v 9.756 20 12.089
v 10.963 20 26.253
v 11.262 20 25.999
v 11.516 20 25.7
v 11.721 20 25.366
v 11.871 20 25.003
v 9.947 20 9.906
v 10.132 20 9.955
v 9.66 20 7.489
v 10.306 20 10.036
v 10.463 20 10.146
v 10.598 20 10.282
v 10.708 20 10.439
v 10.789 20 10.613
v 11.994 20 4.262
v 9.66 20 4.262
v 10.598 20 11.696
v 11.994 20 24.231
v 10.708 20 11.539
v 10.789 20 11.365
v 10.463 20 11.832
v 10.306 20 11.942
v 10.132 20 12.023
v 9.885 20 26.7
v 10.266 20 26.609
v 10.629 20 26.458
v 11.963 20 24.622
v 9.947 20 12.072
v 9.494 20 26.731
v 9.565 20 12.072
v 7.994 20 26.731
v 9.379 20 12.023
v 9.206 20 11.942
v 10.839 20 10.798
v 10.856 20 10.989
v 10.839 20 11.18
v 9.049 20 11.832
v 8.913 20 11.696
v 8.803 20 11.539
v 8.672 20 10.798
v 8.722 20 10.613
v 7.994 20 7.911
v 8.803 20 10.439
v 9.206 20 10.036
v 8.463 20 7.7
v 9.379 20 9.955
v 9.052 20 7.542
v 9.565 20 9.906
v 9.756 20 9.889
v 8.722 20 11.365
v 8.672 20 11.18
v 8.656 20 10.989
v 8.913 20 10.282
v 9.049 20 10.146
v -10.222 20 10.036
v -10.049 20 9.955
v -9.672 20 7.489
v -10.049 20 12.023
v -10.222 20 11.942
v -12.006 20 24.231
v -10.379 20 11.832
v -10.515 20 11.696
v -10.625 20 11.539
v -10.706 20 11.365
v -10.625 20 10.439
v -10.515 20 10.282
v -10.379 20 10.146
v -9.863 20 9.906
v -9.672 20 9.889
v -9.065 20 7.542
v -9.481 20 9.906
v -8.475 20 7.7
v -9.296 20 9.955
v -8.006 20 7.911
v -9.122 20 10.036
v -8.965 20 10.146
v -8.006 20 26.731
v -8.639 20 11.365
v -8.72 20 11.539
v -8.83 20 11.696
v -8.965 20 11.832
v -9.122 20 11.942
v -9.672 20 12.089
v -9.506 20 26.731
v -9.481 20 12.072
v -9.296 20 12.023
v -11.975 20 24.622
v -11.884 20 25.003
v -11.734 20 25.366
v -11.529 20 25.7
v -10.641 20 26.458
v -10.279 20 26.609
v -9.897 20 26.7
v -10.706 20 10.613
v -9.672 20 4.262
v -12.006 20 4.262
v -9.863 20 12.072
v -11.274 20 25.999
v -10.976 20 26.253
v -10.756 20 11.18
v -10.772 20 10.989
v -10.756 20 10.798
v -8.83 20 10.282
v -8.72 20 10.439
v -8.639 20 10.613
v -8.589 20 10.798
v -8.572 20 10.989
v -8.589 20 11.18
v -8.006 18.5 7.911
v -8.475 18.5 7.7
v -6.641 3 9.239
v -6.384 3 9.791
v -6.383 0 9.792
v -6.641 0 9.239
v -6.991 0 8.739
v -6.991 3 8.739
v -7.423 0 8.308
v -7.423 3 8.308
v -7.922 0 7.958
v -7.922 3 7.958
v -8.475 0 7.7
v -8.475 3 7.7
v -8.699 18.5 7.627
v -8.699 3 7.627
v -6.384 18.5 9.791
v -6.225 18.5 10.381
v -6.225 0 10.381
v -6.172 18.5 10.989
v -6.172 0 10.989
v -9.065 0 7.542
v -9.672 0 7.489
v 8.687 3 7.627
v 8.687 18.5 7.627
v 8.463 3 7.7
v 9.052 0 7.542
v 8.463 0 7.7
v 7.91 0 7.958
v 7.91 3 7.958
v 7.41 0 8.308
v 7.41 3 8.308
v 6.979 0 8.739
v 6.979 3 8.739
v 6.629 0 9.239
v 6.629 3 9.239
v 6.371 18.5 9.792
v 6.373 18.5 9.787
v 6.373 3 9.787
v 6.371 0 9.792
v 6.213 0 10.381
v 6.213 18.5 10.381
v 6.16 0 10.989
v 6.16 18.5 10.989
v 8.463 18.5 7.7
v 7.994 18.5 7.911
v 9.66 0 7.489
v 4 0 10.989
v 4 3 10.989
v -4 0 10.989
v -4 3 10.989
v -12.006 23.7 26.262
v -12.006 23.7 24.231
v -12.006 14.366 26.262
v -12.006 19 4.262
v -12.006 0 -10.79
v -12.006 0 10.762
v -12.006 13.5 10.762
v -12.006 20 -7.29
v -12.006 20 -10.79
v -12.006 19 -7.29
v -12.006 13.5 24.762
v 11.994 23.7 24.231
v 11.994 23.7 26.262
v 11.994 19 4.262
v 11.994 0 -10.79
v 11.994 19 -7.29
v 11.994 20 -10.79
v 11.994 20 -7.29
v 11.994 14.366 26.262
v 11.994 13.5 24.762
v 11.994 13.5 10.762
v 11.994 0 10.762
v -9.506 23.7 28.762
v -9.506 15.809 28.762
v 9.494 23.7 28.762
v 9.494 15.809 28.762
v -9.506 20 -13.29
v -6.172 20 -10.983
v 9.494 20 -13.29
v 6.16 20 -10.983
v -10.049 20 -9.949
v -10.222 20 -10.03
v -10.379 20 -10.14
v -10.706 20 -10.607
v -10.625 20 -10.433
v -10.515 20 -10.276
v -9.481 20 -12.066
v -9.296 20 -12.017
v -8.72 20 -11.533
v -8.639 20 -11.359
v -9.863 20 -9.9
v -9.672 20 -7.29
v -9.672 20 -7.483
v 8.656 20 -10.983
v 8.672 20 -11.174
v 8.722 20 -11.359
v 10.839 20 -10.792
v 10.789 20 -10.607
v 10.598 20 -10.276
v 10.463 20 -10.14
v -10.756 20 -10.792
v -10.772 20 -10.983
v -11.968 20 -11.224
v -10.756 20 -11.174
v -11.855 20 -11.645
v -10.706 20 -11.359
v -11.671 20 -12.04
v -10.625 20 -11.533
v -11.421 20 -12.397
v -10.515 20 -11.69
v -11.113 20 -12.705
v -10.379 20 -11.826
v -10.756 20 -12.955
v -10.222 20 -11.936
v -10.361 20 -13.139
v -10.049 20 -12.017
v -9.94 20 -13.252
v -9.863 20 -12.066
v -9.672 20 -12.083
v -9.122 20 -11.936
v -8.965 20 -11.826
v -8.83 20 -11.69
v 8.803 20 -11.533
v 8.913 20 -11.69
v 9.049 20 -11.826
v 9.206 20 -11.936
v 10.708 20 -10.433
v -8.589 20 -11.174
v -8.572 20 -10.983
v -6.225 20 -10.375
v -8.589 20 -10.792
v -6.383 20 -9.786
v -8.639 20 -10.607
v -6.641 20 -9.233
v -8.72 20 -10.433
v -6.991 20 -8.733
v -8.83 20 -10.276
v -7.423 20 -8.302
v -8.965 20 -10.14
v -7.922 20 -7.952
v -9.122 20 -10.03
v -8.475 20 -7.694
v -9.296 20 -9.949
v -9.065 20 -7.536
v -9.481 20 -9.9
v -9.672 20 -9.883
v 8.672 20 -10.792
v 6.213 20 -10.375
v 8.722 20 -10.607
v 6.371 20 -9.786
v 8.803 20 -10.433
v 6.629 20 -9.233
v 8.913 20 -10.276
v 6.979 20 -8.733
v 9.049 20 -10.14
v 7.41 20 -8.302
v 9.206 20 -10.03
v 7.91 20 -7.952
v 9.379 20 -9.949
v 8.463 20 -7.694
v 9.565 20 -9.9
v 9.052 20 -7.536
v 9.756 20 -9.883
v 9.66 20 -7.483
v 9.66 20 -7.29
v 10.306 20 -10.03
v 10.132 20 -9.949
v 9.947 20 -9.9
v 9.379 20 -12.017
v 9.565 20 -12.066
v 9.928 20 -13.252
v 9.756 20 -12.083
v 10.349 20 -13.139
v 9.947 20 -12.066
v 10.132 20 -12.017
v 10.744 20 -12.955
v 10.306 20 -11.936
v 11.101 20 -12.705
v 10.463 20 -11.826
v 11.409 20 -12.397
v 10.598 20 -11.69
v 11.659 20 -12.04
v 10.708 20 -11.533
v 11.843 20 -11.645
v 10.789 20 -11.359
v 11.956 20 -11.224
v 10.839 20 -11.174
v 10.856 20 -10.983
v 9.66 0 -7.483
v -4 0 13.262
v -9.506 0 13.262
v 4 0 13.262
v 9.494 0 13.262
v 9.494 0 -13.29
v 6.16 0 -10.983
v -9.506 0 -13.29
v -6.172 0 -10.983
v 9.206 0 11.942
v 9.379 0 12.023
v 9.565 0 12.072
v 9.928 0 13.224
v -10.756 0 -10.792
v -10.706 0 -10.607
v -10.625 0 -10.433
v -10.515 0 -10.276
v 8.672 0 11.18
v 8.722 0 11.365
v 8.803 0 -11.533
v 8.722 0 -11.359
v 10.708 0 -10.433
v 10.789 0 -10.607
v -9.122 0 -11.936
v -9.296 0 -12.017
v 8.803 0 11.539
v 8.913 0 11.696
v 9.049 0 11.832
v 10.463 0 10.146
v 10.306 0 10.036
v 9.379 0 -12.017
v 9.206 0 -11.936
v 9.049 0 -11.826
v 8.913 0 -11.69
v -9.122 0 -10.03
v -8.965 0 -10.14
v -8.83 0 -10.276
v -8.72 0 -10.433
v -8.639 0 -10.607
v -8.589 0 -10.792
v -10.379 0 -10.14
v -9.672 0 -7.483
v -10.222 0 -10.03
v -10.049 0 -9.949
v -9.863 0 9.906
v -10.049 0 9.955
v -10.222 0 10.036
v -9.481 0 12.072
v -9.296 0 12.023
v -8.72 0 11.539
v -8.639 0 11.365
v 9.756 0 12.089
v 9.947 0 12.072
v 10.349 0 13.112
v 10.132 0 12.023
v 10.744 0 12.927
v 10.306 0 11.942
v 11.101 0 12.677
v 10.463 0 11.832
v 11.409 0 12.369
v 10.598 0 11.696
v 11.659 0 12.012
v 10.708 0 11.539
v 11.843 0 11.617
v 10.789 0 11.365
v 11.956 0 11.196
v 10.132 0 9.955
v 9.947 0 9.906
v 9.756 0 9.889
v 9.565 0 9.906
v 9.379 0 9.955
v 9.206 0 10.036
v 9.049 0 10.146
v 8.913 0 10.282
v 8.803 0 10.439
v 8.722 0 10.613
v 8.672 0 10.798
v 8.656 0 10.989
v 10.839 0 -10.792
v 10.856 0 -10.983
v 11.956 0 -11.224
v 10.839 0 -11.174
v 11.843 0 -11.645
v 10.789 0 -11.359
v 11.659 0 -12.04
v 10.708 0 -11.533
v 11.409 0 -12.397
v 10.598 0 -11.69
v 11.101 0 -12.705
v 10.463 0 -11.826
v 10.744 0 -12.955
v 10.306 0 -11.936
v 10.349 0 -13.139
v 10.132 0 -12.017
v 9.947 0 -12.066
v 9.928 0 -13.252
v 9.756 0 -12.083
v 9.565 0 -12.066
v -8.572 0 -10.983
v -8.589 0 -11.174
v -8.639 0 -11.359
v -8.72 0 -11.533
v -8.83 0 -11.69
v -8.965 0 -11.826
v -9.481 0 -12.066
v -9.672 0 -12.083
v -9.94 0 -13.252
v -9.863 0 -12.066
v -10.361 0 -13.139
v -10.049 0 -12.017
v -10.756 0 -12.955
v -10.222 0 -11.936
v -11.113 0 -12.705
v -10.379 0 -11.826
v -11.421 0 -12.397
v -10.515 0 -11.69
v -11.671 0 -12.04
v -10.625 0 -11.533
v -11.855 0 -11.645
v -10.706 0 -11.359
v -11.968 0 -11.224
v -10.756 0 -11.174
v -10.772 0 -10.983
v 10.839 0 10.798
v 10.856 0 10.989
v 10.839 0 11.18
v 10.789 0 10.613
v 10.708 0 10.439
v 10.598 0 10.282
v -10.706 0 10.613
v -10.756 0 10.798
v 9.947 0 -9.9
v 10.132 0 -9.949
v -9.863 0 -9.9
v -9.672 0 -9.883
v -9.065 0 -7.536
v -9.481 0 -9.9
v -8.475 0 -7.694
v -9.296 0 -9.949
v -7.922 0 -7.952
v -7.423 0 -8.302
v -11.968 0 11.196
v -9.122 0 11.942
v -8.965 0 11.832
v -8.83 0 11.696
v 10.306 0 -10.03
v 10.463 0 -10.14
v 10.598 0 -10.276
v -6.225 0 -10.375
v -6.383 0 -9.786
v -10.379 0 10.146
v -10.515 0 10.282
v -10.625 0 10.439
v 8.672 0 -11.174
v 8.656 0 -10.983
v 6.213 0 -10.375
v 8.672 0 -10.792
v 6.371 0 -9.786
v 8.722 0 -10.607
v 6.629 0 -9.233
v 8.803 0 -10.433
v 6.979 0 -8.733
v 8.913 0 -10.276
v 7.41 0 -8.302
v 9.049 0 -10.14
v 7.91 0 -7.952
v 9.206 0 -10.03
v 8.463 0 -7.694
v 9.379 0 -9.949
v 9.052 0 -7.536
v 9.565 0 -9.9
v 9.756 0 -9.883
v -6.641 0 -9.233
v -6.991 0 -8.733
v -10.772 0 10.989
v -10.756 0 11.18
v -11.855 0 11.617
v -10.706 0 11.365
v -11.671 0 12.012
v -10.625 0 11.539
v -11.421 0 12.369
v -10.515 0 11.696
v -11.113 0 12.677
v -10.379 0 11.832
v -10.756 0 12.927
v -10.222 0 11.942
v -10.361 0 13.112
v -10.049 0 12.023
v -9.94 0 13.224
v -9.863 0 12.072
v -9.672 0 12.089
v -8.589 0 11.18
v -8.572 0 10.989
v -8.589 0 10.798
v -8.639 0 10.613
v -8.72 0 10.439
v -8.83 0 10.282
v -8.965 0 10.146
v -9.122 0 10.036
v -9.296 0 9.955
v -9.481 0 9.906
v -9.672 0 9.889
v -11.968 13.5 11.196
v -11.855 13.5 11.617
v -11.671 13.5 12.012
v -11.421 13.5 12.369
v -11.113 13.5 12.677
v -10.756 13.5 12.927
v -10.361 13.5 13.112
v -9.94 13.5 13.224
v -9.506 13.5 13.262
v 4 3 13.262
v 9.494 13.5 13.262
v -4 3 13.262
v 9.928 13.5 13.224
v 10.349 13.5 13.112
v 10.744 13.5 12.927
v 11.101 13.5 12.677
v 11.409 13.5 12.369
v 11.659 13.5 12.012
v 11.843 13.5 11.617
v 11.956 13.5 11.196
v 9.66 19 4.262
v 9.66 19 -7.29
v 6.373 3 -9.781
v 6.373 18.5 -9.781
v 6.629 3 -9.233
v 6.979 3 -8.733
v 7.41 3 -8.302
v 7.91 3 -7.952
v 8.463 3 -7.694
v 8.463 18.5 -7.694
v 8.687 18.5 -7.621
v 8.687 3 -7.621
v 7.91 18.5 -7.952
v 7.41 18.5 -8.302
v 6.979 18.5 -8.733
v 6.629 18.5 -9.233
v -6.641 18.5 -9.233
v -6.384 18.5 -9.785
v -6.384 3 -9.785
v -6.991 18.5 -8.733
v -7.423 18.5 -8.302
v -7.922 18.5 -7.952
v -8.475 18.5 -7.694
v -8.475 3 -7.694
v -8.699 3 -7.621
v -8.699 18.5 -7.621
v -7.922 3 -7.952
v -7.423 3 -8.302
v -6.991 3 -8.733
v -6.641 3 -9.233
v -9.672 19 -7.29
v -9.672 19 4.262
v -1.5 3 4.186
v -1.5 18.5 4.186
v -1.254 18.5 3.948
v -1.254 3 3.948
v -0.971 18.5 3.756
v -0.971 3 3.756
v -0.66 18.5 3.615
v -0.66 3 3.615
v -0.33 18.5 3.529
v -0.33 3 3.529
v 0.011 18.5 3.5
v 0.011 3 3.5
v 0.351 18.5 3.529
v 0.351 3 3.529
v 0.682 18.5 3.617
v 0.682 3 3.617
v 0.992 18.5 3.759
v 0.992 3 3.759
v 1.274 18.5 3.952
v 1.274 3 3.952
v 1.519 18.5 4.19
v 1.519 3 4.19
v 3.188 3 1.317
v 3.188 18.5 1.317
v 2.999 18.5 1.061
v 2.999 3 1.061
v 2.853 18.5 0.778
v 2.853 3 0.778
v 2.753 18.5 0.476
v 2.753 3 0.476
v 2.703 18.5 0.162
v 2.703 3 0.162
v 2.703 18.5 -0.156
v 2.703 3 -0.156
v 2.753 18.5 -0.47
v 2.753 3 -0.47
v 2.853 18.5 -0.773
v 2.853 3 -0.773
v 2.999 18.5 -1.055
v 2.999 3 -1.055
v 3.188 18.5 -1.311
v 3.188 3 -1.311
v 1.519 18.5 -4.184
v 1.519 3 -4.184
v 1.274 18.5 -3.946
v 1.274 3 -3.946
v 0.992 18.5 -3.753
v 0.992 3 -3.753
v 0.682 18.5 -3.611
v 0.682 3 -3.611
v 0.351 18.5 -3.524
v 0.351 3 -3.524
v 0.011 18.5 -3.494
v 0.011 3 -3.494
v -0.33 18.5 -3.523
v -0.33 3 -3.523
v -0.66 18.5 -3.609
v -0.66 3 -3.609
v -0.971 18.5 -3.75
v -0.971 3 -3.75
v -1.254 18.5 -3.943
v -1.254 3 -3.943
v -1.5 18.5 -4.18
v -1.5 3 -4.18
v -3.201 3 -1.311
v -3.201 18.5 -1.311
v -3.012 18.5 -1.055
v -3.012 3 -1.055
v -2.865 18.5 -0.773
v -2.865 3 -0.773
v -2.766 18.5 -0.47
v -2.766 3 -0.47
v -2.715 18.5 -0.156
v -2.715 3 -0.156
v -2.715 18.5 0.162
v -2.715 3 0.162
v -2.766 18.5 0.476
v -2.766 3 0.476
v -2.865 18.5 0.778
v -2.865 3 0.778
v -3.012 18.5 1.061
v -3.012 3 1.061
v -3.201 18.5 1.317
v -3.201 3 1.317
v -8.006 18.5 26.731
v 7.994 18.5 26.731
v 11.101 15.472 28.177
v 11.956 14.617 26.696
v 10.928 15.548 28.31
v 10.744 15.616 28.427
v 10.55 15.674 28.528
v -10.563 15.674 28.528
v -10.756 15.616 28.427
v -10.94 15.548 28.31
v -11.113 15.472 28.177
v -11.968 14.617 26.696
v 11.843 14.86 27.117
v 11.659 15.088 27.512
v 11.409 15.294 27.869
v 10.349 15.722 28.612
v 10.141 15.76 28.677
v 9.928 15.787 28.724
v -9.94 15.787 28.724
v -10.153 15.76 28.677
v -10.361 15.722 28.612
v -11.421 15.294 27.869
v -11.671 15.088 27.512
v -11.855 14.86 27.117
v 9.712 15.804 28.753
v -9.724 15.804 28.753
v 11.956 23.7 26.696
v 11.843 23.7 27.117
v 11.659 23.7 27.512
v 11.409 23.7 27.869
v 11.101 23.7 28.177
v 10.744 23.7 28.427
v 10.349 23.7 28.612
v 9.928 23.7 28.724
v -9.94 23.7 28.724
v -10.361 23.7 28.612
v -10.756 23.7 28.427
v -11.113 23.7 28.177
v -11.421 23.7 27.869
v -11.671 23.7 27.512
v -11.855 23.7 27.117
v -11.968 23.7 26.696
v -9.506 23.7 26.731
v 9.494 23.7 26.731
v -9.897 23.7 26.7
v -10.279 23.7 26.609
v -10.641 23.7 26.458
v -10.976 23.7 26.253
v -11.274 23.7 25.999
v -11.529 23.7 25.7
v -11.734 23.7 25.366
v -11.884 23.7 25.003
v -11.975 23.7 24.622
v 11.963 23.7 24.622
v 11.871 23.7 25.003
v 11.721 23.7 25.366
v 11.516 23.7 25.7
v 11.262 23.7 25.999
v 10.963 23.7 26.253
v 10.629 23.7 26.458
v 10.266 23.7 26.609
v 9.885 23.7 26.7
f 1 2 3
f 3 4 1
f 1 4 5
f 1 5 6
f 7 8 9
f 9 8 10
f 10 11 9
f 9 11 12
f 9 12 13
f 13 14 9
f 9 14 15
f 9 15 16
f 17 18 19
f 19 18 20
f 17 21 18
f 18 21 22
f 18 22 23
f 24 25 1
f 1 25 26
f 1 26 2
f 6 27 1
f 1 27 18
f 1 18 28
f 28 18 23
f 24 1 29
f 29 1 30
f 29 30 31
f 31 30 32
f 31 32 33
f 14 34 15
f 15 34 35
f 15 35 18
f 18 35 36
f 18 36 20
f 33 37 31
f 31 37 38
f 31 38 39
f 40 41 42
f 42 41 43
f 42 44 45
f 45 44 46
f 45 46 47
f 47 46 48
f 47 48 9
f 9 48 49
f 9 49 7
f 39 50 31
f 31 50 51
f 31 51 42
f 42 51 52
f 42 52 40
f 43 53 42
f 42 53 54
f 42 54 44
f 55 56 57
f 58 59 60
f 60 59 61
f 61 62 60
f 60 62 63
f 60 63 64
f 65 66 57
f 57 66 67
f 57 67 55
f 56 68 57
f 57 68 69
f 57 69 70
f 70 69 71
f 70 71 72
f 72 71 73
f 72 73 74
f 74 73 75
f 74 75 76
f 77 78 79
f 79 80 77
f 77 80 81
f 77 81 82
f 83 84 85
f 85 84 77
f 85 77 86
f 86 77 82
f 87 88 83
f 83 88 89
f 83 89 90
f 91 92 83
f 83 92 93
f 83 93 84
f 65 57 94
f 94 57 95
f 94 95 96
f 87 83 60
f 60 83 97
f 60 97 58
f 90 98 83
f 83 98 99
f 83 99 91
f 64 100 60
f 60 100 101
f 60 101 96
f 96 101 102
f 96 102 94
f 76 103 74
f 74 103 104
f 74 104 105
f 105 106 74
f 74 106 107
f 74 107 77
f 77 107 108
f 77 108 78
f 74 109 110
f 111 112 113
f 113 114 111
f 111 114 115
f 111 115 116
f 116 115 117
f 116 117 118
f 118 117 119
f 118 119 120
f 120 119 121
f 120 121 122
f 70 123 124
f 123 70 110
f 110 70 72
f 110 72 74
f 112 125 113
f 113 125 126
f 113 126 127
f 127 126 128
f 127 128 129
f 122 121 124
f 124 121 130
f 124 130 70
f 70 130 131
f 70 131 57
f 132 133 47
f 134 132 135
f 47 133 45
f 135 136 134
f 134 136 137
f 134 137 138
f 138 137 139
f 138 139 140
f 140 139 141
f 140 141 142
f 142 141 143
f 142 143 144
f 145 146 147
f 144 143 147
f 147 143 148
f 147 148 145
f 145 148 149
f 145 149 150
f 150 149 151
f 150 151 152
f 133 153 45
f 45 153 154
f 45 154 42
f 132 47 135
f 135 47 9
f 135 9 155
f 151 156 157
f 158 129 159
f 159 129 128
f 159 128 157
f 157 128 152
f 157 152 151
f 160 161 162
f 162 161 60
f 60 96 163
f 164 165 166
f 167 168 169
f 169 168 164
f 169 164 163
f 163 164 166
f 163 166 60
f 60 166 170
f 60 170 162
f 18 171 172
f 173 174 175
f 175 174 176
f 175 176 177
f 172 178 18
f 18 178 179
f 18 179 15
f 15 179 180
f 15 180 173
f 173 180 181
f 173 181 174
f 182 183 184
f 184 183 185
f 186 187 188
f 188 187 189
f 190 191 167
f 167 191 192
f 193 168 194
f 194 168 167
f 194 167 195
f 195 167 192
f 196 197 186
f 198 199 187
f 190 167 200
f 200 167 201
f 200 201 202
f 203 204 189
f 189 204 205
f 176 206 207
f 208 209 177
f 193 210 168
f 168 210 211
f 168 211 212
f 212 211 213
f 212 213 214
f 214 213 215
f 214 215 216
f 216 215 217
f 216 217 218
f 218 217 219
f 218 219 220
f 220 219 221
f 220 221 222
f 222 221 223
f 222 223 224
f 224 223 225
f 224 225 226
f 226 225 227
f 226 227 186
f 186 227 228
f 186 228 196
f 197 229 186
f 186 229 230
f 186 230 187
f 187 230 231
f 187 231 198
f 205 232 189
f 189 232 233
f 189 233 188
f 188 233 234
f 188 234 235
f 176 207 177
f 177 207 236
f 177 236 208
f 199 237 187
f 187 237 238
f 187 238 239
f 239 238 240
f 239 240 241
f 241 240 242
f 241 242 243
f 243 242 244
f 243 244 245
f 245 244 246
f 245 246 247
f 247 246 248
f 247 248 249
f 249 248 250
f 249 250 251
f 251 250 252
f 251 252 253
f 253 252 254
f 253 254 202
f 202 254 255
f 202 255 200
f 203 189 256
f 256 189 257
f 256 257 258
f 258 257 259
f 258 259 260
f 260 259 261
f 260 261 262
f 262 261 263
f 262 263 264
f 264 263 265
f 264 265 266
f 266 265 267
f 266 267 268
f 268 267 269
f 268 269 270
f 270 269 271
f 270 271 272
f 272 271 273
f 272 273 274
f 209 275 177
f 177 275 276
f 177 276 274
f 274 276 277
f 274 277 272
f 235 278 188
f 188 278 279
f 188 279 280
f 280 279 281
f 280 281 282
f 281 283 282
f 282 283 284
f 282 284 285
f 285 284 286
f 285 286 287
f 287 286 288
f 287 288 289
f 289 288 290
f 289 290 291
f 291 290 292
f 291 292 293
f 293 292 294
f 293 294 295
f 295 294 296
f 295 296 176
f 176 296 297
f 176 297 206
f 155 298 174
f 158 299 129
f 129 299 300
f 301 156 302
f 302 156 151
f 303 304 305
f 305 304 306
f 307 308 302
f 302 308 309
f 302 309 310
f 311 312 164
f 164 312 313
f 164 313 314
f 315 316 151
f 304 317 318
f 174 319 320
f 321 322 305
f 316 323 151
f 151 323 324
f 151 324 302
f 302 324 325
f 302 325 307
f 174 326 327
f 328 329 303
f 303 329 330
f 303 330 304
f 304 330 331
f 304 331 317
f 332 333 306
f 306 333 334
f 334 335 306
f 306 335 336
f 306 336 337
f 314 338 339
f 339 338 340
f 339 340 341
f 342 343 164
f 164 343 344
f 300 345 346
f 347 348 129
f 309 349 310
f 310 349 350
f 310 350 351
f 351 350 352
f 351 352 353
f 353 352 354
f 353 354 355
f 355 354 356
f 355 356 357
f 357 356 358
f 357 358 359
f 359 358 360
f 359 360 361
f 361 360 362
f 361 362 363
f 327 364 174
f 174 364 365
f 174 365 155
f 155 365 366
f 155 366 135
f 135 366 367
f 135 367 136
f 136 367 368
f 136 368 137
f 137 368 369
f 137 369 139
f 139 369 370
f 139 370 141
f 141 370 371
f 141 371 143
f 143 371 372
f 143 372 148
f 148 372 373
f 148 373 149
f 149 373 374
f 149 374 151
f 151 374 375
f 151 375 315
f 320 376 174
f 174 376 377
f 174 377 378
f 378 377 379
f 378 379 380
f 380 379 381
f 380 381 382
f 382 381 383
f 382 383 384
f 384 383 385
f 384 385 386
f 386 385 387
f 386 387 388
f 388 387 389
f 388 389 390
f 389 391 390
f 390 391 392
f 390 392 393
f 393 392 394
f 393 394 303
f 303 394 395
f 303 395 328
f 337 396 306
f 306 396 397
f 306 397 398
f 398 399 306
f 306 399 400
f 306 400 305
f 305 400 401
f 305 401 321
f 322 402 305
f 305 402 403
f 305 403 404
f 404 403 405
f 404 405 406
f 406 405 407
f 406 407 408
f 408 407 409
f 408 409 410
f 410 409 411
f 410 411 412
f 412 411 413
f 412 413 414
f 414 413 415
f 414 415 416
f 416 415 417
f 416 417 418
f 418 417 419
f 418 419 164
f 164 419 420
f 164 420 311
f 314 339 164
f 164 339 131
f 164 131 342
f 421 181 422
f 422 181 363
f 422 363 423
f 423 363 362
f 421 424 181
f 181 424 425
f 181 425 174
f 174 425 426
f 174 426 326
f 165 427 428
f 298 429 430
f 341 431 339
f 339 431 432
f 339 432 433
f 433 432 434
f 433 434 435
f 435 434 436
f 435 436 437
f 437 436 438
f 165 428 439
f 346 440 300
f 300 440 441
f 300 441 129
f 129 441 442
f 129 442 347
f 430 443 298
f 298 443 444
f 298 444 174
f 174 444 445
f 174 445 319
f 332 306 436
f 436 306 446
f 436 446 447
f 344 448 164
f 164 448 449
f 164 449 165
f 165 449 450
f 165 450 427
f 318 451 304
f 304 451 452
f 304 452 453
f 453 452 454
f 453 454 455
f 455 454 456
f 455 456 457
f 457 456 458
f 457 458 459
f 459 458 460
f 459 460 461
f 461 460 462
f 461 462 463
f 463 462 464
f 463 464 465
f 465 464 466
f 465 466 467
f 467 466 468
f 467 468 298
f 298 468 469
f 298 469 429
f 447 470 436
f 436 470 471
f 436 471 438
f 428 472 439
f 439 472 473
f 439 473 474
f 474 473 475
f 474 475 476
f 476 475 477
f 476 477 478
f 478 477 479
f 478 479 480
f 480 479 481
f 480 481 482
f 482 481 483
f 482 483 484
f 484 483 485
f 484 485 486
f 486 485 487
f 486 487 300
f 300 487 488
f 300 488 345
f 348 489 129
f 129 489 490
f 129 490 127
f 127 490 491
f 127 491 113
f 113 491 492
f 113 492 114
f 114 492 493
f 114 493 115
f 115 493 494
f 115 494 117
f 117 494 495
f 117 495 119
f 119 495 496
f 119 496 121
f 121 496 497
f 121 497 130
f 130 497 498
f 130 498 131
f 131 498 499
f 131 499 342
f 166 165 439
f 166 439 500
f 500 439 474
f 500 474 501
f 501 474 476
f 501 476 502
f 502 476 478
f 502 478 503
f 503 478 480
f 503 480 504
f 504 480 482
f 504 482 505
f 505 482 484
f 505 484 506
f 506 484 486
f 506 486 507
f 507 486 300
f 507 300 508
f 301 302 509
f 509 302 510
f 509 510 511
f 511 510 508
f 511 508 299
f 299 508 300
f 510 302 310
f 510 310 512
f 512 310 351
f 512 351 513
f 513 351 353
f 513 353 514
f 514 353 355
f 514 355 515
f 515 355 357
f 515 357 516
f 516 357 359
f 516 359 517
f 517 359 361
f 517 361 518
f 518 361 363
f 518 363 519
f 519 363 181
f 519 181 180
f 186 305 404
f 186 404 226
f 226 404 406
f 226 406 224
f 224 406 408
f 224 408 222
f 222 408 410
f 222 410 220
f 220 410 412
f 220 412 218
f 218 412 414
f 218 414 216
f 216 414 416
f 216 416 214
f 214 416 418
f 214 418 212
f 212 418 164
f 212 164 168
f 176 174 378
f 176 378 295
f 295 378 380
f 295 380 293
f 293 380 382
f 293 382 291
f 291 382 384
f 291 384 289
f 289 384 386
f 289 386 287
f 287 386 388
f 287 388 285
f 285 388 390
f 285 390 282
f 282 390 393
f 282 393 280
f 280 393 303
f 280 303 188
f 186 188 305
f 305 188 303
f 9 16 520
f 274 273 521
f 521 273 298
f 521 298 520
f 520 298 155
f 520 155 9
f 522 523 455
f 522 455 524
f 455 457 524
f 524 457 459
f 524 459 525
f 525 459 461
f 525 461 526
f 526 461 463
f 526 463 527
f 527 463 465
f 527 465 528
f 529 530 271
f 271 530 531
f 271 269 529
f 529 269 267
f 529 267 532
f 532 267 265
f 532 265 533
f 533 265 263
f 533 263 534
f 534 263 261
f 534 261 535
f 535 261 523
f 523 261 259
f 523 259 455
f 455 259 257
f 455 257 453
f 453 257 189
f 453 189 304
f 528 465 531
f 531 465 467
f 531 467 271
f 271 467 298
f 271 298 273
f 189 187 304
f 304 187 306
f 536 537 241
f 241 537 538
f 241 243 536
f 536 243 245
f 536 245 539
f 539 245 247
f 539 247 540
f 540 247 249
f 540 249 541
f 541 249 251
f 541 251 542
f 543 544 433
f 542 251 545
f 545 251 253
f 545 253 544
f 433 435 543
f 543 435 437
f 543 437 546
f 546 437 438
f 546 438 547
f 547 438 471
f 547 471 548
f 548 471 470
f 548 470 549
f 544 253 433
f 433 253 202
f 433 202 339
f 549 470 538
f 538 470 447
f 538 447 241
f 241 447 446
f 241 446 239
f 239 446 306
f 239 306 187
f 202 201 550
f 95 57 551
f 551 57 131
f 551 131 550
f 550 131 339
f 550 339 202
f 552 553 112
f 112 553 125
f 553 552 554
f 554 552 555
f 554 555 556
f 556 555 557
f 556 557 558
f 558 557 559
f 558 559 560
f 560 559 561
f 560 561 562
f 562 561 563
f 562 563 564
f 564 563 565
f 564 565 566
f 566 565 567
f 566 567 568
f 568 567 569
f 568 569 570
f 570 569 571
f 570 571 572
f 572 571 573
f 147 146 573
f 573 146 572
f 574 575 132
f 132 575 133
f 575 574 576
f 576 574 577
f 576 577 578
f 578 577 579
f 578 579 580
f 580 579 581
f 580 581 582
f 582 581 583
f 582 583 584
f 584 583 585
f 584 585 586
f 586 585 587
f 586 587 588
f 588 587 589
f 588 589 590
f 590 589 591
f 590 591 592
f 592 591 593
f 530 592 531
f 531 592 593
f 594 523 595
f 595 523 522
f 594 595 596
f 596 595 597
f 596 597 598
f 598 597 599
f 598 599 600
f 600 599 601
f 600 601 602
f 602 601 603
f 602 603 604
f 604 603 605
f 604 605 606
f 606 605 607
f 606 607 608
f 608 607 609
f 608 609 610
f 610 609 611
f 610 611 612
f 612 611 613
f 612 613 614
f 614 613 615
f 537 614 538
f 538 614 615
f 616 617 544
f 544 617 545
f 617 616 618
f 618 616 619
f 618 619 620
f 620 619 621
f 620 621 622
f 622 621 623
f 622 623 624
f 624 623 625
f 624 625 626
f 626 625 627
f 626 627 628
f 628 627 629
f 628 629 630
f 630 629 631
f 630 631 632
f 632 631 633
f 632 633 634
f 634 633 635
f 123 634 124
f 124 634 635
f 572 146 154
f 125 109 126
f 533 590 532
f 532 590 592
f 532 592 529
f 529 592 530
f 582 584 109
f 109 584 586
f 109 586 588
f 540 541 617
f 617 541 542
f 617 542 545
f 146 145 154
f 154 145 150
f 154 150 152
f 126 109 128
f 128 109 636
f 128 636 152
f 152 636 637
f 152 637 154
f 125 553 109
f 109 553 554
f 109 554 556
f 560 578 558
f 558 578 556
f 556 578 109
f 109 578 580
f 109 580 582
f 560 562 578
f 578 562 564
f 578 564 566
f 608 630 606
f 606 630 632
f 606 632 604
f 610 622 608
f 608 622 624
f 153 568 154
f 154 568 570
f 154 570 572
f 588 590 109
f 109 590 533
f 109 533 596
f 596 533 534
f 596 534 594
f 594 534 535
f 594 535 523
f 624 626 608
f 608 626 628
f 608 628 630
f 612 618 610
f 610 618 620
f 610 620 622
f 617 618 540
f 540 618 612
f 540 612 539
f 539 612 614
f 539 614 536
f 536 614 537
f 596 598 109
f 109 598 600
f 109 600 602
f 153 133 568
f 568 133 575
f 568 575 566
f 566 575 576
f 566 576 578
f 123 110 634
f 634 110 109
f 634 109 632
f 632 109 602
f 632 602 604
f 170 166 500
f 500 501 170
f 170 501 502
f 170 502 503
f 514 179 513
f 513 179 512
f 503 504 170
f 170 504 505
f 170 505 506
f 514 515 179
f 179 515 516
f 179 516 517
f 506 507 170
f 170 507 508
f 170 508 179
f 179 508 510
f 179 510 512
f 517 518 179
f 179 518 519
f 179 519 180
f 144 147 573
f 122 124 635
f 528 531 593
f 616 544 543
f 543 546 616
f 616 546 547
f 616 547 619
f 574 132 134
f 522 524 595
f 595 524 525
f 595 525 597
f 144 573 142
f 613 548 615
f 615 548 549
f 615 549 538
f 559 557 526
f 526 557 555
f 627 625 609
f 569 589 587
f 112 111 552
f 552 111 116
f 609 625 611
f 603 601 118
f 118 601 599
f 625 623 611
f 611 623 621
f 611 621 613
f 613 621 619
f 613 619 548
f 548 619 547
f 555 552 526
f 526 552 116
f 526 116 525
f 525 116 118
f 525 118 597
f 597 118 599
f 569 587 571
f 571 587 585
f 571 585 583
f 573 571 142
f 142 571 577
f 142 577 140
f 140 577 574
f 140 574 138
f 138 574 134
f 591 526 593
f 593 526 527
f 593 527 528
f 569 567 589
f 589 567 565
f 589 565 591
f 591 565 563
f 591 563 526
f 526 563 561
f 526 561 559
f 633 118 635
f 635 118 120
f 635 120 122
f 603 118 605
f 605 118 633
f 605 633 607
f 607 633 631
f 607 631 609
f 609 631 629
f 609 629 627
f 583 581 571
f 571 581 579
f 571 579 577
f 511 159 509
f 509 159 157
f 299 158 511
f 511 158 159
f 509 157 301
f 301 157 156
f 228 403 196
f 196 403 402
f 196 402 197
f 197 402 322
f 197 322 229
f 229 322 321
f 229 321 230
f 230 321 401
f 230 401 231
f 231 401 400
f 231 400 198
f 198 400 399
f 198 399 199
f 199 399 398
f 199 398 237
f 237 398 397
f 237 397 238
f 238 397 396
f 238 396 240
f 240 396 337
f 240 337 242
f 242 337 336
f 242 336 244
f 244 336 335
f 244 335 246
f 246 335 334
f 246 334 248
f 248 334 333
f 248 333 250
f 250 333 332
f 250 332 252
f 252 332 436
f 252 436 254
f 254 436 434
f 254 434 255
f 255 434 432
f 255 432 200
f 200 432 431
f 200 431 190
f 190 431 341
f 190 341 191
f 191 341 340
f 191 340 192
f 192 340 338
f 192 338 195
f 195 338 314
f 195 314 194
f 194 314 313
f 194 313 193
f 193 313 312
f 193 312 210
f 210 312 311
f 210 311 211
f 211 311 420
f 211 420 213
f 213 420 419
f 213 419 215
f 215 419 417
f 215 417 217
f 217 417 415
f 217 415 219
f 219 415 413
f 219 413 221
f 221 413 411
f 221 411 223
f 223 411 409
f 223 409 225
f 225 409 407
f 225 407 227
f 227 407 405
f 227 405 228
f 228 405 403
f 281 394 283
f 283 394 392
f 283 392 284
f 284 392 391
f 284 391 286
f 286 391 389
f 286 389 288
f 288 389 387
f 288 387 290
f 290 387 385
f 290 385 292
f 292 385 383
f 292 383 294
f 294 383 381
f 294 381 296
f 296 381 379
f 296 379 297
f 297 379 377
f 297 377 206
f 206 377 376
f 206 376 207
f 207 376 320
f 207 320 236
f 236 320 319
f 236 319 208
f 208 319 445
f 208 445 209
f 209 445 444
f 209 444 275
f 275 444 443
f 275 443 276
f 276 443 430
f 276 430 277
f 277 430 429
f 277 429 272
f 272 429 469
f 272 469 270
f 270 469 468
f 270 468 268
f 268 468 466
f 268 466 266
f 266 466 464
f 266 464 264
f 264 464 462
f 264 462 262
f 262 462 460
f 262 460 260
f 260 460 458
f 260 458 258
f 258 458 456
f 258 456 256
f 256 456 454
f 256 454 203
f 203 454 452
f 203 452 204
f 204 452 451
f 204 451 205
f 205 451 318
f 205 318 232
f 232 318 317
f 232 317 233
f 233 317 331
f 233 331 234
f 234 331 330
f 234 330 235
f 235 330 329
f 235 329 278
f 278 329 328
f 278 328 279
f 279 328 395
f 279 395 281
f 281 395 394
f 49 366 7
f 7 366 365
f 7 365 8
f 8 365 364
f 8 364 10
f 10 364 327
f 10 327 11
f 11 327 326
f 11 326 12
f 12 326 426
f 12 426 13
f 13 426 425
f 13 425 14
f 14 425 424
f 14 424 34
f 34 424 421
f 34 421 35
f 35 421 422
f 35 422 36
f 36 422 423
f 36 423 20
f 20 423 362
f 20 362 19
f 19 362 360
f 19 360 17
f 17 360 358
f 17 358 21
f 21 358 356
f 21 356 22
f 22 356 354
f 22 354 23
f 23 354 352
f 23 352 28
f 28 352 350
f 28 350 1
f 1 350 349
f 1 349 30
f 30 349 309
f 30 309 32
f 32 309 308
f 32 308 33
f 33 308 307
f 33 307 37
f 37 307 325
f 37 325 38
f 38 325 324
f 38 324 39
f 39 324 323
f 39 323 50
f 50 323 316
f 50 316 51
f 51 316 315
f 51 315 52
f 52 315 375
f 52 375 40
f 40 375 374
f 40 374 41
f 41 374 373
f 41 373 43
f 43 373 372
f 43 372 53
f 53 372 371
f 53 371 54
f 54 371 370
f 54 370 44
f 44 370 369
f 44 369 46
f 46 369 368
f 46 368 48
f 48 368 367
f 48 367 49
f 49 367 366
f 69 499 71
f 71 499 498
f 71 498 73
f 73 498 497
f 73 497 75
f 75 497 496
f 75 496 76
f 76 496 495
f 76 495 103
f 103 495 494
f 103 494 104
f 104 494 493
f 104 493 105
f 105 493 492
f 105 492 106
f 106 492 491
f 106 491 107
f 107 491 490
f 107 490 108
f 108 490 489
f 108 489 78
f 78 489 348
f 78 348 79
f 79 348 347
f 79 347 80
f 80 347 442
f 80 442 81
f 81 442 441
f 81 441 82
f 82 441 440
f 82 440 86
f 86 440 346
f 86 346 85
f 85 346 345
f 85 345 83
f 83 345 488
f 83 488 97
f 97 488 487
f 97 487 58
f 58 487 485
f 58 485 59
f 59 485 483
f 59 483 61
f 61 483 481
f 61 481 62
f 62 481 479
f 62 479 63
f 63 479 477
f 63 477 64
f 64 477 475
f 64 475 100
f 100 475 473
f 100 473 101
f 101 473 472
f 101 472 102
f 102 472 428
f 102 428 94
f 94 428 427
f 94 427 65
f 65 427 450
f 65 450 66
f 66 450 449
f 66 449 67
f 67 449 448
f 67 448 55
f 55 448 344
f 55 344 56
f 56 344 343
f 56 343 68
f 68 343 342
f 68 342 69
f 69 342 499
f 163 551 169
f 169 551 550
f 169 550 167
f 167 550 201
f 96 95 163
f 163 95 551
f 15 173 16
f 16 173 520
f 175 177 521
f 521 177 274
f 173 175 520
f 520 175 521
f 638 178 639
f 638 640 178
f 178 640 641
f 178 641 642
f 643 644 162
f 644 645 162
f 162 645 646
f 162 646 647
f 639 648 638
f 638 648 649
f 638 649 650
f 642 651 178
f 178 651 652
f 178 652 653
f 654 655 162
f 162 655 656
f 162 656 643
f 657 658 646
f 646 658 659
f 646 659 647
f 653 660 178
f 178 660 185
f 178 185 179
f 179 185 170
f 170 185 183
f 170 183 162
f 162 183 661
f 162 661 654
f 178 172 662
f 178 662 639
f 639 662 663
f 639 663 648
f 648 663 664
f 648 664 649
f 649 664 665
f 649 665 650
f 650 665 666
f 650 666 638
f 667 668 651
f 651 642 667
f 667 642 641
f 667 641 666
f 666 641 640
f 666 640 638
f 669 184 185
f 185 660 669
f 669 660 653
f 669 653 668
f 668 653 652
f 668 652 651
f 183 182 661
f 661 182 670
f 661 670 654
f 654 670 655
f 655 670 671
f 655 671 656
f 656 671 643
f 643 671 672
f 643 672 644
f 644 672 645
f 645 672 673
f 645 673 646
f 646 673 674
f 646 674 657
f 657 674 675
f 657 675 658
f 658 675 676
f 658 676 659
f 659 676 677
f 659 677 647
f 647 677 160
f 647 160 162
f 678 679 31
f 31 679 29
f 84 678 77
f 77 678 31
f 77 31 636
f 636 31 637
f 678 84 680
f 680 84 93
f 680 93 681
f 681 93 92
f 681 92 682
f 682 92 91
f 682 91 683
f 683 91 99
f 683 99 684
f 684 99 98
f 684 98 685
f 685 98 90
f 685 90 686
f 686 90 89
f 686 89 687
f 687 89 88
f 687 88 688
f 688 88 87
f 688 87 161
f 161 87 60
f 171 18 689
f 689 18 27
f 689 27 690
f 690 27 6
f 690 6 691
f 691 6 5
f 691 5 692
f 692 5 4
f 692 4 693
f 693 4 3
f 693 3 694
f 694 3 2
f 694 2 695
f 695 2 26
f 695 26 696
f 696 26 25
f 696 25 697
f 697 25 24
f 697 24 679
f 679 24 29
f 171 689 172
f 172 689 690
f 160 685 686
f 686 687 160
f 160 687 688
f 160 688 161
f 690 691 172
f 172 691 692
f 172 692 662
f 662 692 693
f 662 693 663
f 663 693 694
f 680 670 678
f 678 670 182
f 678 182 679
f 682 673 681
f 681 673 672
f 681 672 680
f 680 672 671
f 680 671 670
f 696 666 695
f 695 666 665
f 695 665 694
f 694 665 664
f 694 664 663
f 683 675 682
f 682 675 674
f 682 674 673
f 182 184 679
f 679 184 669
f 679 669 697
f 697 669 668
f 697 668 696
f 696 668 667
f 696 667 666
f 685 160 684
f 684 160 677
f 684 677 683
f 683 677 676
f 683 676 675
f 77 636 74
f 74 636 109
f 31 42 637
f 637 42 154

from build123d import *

# Parameters (mm, degrees)
EXTRUDE_1_DEPTH           = 20
EXTRUDE_2_DEPTH           = 18.5
EXTRUDE_START             = -6.5
EXTRUDE_8_DEPTH           = 6.5
CUT_EXTRUDE_1_DEPTH       = 3
CUT_EXTRUDE_12_REACH      = 37.343
SKETCH_8_W                = 8
SKETCH_8_H                = 3
SKETCH_1_10_R             = 1.1
CUT_EXTRUDE_13_DEPTH      = 38.032676918
SKETCH_18_W               = 11.552
SKETCH_18_H               = 1
CUT_EXTRUDE_16_DEPTH      = 43.464917168
CHAMFER_1_SIZE            = 4
CHAMFER_1_SIZE2           = 2.309401077
CUT_EXTRUDE_18_REACH      = 39.033
EXTRUDE_START_2           = 3.7
EXTRUDE_9_DEPTH           = 3.7
CUT_EXTRUDE_19_DEPTH      = 11.5
CUT_EXTRUDE_19_DEPTH_BACK = 15.742
SKETCH_22_W               = 16
SKETCH_22_H               = 1.5


with BuildPart() as part:
    # 草图1 → 凸台-拉伸1 (new body)
    with BuildSketch(Plane(origin=(0, 0, 0), x_dir=(1, 0, 0), z_dir=(0, 1, 0))):
        with BuildLine():
            Line((9.493752892, 13.289712364), (-9.506247108, 13.289712364))
            ThreePointArc((-9.506247108, 13.289712364), (-11.274014061, 12.557479317), (-12.006247108, 10.789712364))
            Line((-12.006247108, 10.789712364), (-12.006247108, -10.762287636))
            ThreePointArc((-12.006247108, -10.762287636), (-11.274014061, -12.530054589), (-9.506247108, -13.262287636))
            Line((-9.506247108, -13.262287636), (9.493752892, -13.262287636))
            ThreePointArc((9.493752892, -13.262287636), (11.261519845, -12.530054589), (11.993752892, -10.762287636))
            Line((11.993752892, -10.762287636), (11.993752892, 10.789712364))
            ThreePointArc((11.993752892, 10.789712364), (11.261519845, 12.557479317), (9.493752892, 13.289712364))
        make_face()
        with BuildLine():
            Line((-9.672300027, -7.488904962), (-9.672300027, 7.483095038))
            ThreePointArc((-9.672300027, 7.483095038), (-7.197426293, 8.508221304), (-6.172300027, 10.983095038))
            Line((-6.172300027, 10.983095038), (6.159805812, 10.983095038))
            ThreePointArc((6.159805812, 10.983095038), (7.184932077, 8.508221304), (9.659805812, 7.483095038))
            Line((9.659805812, 7.483095038), (9.659805812, -7.488904962))
            ThreePointArc((9.659805812, -7.488904962), (7.184932077, -8.514031228), (6.159805812, -10.988904962))
            Line((6.159805812, -10.988904962), (-6.172300027, -10.988904962))
            ThreePointArc((-6.172300027, -10.988904962), (-7.197426293, -8.514031228), (-9.672300027, -7.488904962))
        make_face(mode=Mode.SUBTRACT)
    extrude(amount=EXTRUDE_1_DEPTH)

    # 草图3<8> → 凸台-拉伸2 (add)
    with BuildSketch(Plane(origin=(0, 0, 0), x_dir=(1, 0, 0), z_dir=(0, 1, 0))):
        with BuildLine():
            Line((-1.499580884, 4.180163842), (-6.383603139, 9.785400263))
            ThreePointArc((-6.383603139, 9.785400263), (-7.282338381, 8.426127434), (-8.699129058, 7.621110763))
            Line((-8.699129058, 7.621110763), (-3.200900077, 1.310968891))
            ThreePointArc((-3.200900077, 1.310968891), (-2.708791154, -0.002904962), (-3.200900077, -1.316778815))
            Line((-3.200900077, -1.316778815), (-8.699129058, -7.626920687))
            ThreePointArc((-8.699129058, -7.626920687), (-7.282338381, -8.431937358), (-6.383603139, -9.791210187))
            Line((-6.383603139, -9.791210187), (-1.499580884, -4.185973766))
            ThreePointArc((-1.499580884, -4.185973766), (0.01074875, -3.499849106), (1.51940074, -4.189654748))
            Line((1.51940074, -4.189654748), (6.372627583, -9.78704836))
            ThreePointArc((6.372627583, -9.78704836), (7.271462931, -8.43042528), (8.686634842, -7.626920687))
            Line((8.686634842, -7.626920687), (3.188405862, -1.316778815))
            ThreePointArc((3.188405862, -1.316778815), (2.696296938, -0.002904962), (3.188405862, 1.310968891))
            Line((3.188405862, 1.310968891), (8.686634842, 7.621110763))
            ThreePointArc((8.686634842, 7.621110763), (7.271462931, 8.424615355), (6.372627583, 9.781238436))
            Line((6.372627583, 9.781238436), (1.51940074, 4.183844824))
            ThreePointArc((1.51940074, 4.183844824), (0.01074875, 3.494039181), (-1.499580884, 4.180163842))
        make_face()
    extrude(amount=EXTRUDE_2_DEPTH)

    # 草图10 → 凸台-拉伸8 (add)
    with BuildSketch(Plane(origin=(0, 20, 0), x_dir=(1, 0, 0), z_dir=(0, 1, 0)).offset(EXTRUDE_START)):
        with BuildLine():
            Line((-12.006247108, -10.762287636), (-12.006247108, -28.762287636))
            Line((-12.006247108, -28.762287636), (11.993752892, -28.762287636))
            Line((11.993752892, -28.762287636), (11.993752892, -10.762287636))
            ThreePointArc((11.993752892, -10.762287636), (11.261519845, -12.530054589), (9.493752892, -13.262287636))
            Line((9.493752892, -13.262287636), (-9.506247108, -13.262287636))
            ThreePointArc((-9.506247108, -13.262287636), (-11.274014061, -12.530054589), (-12.006247108, -10.762287636))
        make_face()
    extrude(amount=EXTRUDE_8_DEPTH)

    # 草图3<6> → 切除-拉伸1 (cut)
    with BuildSketch(Plane(origin=(0, 0, 0), x_dir=(1, 0, 0), z_dir=(0, 1, 0))):
        with BuildLine():
            Line((-1.499580884, 4.180163842), (-6.383603139, 9.785400263))
            ThreePointArc((-6.383603139, 9.785400263), (-7.282338381, 8.426127434), (-8.699129058, 7.621110763))
            Line((-8.699129058, 7.621110763), (-3.200900077, 1.310968891))
            ThreePointArc((-3.200900077, 1.310968891), (-2.708791154, -0.002904962), (-3.200900077, -1.316778815))
            Line((-3.200900077, -1.316778815), (-8.699129058, -7.626920687))
            ThreePointArc((-8.699129058, -7.626920687), (-7.282338381, -8.431937358), (-6.383603139, -9.791210187))
            Line((-6.383603139, -9.791210187), (-1.499580884, -4.185973766))
            ThreePointArc((-1.499580884, -4.185973766), (0.01074875, -3.499849106), (1.51940074, -4.189654748))
            Line((1.51940074, -4.189654748), (6.372627583, -9.78704836))
            ThreePointArc((6.372627583, -9.78704836), (7.271462931, -8.43042528), (8.686634842, -7.626920687))
            Line((8.686634842, -7.626920687), (3.188405862, -1.316778815))
            ThreePointArc((3.188405862, -1.316778815), (2.696296938, -0.002904962), (3.188405862, 1.310968891))
            Line((3.188405862, 1.310968891), (8.686634842, 7.621110763))
            ThreePointArc((8.686634842, 7.621110763), (7.271462931, 8.424615355), (6.372627583, 9.781238436))
            Line((6.372627583, 9.781238436), (1.51940074, 4.183844824))
            ThreePointArc((1.51940074, 4.183844824), (0.01074875, 3.494039181), (-1.499580884, 4.180163842))
        make_face()
    extrude(amount=CUT_EXTRUDE_1_DEPTH, mode=Mode.SUBTRACT)

    # 草图8 → 切除-拉伸12 (cut, up to next)
    with BuildSketch(Plane.XY.offset(13.262287636), mode=Mode.PRIVATE) as cut_extrude_12_sk1:
        with Locations((0, 1.5)):
            Rectangle(SKETCH_8_W, SKETCH_8_H)
    cut_extrude_12_tool1 = extrude(cut_extrude_12_sk1.sketch, amount=-CUT_EXTRUDE_12_REACH, mode=Mode.PRIVATE) & part.part
    add(cut_extrude_12_tool1.solids().sort_by_distance((0, 1.5, 13.262288))[0], mode=Mode.SUBTRACT)

    # 草图1<10> → 切除-拉伸13 (cut, through all)
    with BuildSketch(Plane(origin=(0, 0, 0), x_dir=(1, 0, 0), z_dir=(0, 1, 0))):
        with Locations(Location((-9.672300027, 10.983095038, 0), (0, 0, 270))):
            Circle(SKETCH_1_10_R)
        with Locations(Location((9.755699973, 10.983095038, 0), (0, 0, 90))):
            Circle(SKETCH_1_10_R)
        with Locations(Location((-9.672300027, -10.988904962, 0), (0, 0, 90))):
            Circle(SKETCH_1_10_R)
        with Locations(Location((9.755699973, -10.988904962, 0), (0, 0, 270))):
            Circle(SKETCH_1_10_R)
    extrude(amount=CUT_EXTRUDE_13_DEPTH, mode=Mode.SUBTRACT)

    # 草图18 → 切除-拉伸16 (cut, through all)
    with BuildSketch(Plane(origin=(11.993752892, 0, 0), x_dir=(0, 0, -1), z_dir=(1, 0, 0))):
        with Locations((1.513712364, 19.5)):
            Rectangle(SKETCH_18_W, SKETCH_18_H)
    extrude(amount=-CUT_EXTRUDE_16_DEPTH, mode=Mode.SUBTRACT)

    # 倒角1
    chamfer_1_edges = [part.edges().sort_by_distance(p)[0] for p in [
        (-0.006247108, 13.5, 28.762287636),
    ]]
    chamfer_1_side = [part.faces().sort_by_distance(p)[0] for p in [
        (-0.006247108, 13.5, 20.952803872),
    ]]
    chamfer(chamfer_1_edges, length=CHAMFER_1_SIZE, length2=CHAMFER_1_SIZE2, reference=chamfer_1_side[0])

    # 切除-拉伸18: up to this plane
    cut_extrude_18_end = Plane(origin=(0, 15.809401077, 28.762287636), z_dir=(0, -0.8660254037844402, 0.49999999999999745))
    # 草图20 → 切除-拉伸18 (cut, up to the surface)
    with BuildSketch(Plane(origin=(0, 20, 0), x_dir=(1, 0, 0), z_dir=(0, 1, 0)), mode=Mode.PRIVATE) as cut_extrude_18_sk1:
        with BuildLine():
            Line((-12.006247108, -26.262287636), (-12.006247108, -28.762287636))
            Line((-12.006247108, -28.762287636), (-9.506247108, -28.762287636))
            ThreePointArc((-9.506247108, -28.762287636), (-11.274014061, -28.030054589), (-12.006247108, -26.262287636))
        make_face()
    cut_extrude_18_tool1 = split(extrude(cut_extrude_18_sk1.sketch, amount=-CUT_EXTRUDE_18_REACH, mode=Mode.PRIVATE), bisect_by=cut_extrude_18_end, keep=Keep.BOTH, mode=Mode.PRIVATE)
    add(cut_extrude_18_tool1.solids().sort_by_distance((-11.447827, 20, 28.203868))[0], mode=Mode.SUBTRACT)
    # 草图20 → 切除-拉伸18 (cut, up to the surface)
    with BuildSketch(Plane(origin=(0, 20, 0), x_dir=(1, 0, 0), z_dir=(0, 1, 0)), mode=Mode.PRIVATE) as cut_extrude_18_sk2:
        with BuildLine():
            Line((11.993752892, -26.262287636), (11.993752892, -28.762287636))
            Line((11.993752892, -28.762287636), (9.493752892, -28.762287636))
            ThreePointArc((9.493752892, -28.762287636), (11.261519845, -28.030054589), (11.993752892, -26.262287636))
        make_face()
    cut_extrude_18_tool2 = split(extrude(cut_extrude_18_sk2.sketch, amount=-CUT_EXTRUDE_18_REACH, mode=Mode.PRIVATE), bisect_by=cut_extrude_18_end, keep=Keep.BOTH, mode=Mode.PRIVATE)
    add(cut_extrude_18_tool2.solids().sort_by_distance((11.435333, 20, 28.203868))[0], mode=Mode.SUBTRACT)

    # 草图21 → 凸台-拉伸9 (add)
    with BuildSketch(Plane(origin=(0, 20, 0), x_dir=(1, 0, 0), z_dir=(0, 1, 0)).offset(EXTRUDE_START_2)):
        with BuildLine():
            ThreePointArc((-9.506247108, -26.730904962), (-11.274014061, -25.998671915), (-12.006247108, -24.230904962))
            Line((-12.006247108, -24.230904962), (-12.006247108, -26.262287636))
            ThreePointArc((-12.006247108, -26.262287636), (-11.274014061, -28.030054589), (-9.506247108, -28.762287636))
            Line((-9.506247108, -28.762287636), (9.493752892, -28.762287636))
            ThreePointArc((9.493752892, -28.762287636), (11.261519845, -28.030054589), (11.993752892, -26.262287636))
            Line((11.993752892, -26.262287636), (11.993752892, -24.230904962))
            ThreePointArc((11.993752892, -24.230904962), (11.261519845, -25.998671915), (9.493752892, -26.730904962))
            Line((9.493752892, -26.730904962), (-9.506247108, -26.730904962))
        make_face()
    extrude(amount=-EXTRUDE_9_DEPTH)

    # 草图22 → 切除-拉伸19 (cut, two sides: drawn at the far end of the back side and taken through both)
    with BuildSketch(Plane(origin=(0, 0, 10.988904962), x_dir=(-1, 0, 0), z_dir=(0, 0, -1)).offset(-CUT_EXTRUDE_19_DEPTH_BACK)):
        with Locations((0.006247108, 19.25)):
            Rectangle(SKETCH_22_W, SKETCH_22_H)
    extrude(amount=CUT_EXTRUDE_19_DEPTH + CUT_EXTRUDE_19_DEPTH_BACK, mode=Mode.SUBTRACT)


solid = part.part
